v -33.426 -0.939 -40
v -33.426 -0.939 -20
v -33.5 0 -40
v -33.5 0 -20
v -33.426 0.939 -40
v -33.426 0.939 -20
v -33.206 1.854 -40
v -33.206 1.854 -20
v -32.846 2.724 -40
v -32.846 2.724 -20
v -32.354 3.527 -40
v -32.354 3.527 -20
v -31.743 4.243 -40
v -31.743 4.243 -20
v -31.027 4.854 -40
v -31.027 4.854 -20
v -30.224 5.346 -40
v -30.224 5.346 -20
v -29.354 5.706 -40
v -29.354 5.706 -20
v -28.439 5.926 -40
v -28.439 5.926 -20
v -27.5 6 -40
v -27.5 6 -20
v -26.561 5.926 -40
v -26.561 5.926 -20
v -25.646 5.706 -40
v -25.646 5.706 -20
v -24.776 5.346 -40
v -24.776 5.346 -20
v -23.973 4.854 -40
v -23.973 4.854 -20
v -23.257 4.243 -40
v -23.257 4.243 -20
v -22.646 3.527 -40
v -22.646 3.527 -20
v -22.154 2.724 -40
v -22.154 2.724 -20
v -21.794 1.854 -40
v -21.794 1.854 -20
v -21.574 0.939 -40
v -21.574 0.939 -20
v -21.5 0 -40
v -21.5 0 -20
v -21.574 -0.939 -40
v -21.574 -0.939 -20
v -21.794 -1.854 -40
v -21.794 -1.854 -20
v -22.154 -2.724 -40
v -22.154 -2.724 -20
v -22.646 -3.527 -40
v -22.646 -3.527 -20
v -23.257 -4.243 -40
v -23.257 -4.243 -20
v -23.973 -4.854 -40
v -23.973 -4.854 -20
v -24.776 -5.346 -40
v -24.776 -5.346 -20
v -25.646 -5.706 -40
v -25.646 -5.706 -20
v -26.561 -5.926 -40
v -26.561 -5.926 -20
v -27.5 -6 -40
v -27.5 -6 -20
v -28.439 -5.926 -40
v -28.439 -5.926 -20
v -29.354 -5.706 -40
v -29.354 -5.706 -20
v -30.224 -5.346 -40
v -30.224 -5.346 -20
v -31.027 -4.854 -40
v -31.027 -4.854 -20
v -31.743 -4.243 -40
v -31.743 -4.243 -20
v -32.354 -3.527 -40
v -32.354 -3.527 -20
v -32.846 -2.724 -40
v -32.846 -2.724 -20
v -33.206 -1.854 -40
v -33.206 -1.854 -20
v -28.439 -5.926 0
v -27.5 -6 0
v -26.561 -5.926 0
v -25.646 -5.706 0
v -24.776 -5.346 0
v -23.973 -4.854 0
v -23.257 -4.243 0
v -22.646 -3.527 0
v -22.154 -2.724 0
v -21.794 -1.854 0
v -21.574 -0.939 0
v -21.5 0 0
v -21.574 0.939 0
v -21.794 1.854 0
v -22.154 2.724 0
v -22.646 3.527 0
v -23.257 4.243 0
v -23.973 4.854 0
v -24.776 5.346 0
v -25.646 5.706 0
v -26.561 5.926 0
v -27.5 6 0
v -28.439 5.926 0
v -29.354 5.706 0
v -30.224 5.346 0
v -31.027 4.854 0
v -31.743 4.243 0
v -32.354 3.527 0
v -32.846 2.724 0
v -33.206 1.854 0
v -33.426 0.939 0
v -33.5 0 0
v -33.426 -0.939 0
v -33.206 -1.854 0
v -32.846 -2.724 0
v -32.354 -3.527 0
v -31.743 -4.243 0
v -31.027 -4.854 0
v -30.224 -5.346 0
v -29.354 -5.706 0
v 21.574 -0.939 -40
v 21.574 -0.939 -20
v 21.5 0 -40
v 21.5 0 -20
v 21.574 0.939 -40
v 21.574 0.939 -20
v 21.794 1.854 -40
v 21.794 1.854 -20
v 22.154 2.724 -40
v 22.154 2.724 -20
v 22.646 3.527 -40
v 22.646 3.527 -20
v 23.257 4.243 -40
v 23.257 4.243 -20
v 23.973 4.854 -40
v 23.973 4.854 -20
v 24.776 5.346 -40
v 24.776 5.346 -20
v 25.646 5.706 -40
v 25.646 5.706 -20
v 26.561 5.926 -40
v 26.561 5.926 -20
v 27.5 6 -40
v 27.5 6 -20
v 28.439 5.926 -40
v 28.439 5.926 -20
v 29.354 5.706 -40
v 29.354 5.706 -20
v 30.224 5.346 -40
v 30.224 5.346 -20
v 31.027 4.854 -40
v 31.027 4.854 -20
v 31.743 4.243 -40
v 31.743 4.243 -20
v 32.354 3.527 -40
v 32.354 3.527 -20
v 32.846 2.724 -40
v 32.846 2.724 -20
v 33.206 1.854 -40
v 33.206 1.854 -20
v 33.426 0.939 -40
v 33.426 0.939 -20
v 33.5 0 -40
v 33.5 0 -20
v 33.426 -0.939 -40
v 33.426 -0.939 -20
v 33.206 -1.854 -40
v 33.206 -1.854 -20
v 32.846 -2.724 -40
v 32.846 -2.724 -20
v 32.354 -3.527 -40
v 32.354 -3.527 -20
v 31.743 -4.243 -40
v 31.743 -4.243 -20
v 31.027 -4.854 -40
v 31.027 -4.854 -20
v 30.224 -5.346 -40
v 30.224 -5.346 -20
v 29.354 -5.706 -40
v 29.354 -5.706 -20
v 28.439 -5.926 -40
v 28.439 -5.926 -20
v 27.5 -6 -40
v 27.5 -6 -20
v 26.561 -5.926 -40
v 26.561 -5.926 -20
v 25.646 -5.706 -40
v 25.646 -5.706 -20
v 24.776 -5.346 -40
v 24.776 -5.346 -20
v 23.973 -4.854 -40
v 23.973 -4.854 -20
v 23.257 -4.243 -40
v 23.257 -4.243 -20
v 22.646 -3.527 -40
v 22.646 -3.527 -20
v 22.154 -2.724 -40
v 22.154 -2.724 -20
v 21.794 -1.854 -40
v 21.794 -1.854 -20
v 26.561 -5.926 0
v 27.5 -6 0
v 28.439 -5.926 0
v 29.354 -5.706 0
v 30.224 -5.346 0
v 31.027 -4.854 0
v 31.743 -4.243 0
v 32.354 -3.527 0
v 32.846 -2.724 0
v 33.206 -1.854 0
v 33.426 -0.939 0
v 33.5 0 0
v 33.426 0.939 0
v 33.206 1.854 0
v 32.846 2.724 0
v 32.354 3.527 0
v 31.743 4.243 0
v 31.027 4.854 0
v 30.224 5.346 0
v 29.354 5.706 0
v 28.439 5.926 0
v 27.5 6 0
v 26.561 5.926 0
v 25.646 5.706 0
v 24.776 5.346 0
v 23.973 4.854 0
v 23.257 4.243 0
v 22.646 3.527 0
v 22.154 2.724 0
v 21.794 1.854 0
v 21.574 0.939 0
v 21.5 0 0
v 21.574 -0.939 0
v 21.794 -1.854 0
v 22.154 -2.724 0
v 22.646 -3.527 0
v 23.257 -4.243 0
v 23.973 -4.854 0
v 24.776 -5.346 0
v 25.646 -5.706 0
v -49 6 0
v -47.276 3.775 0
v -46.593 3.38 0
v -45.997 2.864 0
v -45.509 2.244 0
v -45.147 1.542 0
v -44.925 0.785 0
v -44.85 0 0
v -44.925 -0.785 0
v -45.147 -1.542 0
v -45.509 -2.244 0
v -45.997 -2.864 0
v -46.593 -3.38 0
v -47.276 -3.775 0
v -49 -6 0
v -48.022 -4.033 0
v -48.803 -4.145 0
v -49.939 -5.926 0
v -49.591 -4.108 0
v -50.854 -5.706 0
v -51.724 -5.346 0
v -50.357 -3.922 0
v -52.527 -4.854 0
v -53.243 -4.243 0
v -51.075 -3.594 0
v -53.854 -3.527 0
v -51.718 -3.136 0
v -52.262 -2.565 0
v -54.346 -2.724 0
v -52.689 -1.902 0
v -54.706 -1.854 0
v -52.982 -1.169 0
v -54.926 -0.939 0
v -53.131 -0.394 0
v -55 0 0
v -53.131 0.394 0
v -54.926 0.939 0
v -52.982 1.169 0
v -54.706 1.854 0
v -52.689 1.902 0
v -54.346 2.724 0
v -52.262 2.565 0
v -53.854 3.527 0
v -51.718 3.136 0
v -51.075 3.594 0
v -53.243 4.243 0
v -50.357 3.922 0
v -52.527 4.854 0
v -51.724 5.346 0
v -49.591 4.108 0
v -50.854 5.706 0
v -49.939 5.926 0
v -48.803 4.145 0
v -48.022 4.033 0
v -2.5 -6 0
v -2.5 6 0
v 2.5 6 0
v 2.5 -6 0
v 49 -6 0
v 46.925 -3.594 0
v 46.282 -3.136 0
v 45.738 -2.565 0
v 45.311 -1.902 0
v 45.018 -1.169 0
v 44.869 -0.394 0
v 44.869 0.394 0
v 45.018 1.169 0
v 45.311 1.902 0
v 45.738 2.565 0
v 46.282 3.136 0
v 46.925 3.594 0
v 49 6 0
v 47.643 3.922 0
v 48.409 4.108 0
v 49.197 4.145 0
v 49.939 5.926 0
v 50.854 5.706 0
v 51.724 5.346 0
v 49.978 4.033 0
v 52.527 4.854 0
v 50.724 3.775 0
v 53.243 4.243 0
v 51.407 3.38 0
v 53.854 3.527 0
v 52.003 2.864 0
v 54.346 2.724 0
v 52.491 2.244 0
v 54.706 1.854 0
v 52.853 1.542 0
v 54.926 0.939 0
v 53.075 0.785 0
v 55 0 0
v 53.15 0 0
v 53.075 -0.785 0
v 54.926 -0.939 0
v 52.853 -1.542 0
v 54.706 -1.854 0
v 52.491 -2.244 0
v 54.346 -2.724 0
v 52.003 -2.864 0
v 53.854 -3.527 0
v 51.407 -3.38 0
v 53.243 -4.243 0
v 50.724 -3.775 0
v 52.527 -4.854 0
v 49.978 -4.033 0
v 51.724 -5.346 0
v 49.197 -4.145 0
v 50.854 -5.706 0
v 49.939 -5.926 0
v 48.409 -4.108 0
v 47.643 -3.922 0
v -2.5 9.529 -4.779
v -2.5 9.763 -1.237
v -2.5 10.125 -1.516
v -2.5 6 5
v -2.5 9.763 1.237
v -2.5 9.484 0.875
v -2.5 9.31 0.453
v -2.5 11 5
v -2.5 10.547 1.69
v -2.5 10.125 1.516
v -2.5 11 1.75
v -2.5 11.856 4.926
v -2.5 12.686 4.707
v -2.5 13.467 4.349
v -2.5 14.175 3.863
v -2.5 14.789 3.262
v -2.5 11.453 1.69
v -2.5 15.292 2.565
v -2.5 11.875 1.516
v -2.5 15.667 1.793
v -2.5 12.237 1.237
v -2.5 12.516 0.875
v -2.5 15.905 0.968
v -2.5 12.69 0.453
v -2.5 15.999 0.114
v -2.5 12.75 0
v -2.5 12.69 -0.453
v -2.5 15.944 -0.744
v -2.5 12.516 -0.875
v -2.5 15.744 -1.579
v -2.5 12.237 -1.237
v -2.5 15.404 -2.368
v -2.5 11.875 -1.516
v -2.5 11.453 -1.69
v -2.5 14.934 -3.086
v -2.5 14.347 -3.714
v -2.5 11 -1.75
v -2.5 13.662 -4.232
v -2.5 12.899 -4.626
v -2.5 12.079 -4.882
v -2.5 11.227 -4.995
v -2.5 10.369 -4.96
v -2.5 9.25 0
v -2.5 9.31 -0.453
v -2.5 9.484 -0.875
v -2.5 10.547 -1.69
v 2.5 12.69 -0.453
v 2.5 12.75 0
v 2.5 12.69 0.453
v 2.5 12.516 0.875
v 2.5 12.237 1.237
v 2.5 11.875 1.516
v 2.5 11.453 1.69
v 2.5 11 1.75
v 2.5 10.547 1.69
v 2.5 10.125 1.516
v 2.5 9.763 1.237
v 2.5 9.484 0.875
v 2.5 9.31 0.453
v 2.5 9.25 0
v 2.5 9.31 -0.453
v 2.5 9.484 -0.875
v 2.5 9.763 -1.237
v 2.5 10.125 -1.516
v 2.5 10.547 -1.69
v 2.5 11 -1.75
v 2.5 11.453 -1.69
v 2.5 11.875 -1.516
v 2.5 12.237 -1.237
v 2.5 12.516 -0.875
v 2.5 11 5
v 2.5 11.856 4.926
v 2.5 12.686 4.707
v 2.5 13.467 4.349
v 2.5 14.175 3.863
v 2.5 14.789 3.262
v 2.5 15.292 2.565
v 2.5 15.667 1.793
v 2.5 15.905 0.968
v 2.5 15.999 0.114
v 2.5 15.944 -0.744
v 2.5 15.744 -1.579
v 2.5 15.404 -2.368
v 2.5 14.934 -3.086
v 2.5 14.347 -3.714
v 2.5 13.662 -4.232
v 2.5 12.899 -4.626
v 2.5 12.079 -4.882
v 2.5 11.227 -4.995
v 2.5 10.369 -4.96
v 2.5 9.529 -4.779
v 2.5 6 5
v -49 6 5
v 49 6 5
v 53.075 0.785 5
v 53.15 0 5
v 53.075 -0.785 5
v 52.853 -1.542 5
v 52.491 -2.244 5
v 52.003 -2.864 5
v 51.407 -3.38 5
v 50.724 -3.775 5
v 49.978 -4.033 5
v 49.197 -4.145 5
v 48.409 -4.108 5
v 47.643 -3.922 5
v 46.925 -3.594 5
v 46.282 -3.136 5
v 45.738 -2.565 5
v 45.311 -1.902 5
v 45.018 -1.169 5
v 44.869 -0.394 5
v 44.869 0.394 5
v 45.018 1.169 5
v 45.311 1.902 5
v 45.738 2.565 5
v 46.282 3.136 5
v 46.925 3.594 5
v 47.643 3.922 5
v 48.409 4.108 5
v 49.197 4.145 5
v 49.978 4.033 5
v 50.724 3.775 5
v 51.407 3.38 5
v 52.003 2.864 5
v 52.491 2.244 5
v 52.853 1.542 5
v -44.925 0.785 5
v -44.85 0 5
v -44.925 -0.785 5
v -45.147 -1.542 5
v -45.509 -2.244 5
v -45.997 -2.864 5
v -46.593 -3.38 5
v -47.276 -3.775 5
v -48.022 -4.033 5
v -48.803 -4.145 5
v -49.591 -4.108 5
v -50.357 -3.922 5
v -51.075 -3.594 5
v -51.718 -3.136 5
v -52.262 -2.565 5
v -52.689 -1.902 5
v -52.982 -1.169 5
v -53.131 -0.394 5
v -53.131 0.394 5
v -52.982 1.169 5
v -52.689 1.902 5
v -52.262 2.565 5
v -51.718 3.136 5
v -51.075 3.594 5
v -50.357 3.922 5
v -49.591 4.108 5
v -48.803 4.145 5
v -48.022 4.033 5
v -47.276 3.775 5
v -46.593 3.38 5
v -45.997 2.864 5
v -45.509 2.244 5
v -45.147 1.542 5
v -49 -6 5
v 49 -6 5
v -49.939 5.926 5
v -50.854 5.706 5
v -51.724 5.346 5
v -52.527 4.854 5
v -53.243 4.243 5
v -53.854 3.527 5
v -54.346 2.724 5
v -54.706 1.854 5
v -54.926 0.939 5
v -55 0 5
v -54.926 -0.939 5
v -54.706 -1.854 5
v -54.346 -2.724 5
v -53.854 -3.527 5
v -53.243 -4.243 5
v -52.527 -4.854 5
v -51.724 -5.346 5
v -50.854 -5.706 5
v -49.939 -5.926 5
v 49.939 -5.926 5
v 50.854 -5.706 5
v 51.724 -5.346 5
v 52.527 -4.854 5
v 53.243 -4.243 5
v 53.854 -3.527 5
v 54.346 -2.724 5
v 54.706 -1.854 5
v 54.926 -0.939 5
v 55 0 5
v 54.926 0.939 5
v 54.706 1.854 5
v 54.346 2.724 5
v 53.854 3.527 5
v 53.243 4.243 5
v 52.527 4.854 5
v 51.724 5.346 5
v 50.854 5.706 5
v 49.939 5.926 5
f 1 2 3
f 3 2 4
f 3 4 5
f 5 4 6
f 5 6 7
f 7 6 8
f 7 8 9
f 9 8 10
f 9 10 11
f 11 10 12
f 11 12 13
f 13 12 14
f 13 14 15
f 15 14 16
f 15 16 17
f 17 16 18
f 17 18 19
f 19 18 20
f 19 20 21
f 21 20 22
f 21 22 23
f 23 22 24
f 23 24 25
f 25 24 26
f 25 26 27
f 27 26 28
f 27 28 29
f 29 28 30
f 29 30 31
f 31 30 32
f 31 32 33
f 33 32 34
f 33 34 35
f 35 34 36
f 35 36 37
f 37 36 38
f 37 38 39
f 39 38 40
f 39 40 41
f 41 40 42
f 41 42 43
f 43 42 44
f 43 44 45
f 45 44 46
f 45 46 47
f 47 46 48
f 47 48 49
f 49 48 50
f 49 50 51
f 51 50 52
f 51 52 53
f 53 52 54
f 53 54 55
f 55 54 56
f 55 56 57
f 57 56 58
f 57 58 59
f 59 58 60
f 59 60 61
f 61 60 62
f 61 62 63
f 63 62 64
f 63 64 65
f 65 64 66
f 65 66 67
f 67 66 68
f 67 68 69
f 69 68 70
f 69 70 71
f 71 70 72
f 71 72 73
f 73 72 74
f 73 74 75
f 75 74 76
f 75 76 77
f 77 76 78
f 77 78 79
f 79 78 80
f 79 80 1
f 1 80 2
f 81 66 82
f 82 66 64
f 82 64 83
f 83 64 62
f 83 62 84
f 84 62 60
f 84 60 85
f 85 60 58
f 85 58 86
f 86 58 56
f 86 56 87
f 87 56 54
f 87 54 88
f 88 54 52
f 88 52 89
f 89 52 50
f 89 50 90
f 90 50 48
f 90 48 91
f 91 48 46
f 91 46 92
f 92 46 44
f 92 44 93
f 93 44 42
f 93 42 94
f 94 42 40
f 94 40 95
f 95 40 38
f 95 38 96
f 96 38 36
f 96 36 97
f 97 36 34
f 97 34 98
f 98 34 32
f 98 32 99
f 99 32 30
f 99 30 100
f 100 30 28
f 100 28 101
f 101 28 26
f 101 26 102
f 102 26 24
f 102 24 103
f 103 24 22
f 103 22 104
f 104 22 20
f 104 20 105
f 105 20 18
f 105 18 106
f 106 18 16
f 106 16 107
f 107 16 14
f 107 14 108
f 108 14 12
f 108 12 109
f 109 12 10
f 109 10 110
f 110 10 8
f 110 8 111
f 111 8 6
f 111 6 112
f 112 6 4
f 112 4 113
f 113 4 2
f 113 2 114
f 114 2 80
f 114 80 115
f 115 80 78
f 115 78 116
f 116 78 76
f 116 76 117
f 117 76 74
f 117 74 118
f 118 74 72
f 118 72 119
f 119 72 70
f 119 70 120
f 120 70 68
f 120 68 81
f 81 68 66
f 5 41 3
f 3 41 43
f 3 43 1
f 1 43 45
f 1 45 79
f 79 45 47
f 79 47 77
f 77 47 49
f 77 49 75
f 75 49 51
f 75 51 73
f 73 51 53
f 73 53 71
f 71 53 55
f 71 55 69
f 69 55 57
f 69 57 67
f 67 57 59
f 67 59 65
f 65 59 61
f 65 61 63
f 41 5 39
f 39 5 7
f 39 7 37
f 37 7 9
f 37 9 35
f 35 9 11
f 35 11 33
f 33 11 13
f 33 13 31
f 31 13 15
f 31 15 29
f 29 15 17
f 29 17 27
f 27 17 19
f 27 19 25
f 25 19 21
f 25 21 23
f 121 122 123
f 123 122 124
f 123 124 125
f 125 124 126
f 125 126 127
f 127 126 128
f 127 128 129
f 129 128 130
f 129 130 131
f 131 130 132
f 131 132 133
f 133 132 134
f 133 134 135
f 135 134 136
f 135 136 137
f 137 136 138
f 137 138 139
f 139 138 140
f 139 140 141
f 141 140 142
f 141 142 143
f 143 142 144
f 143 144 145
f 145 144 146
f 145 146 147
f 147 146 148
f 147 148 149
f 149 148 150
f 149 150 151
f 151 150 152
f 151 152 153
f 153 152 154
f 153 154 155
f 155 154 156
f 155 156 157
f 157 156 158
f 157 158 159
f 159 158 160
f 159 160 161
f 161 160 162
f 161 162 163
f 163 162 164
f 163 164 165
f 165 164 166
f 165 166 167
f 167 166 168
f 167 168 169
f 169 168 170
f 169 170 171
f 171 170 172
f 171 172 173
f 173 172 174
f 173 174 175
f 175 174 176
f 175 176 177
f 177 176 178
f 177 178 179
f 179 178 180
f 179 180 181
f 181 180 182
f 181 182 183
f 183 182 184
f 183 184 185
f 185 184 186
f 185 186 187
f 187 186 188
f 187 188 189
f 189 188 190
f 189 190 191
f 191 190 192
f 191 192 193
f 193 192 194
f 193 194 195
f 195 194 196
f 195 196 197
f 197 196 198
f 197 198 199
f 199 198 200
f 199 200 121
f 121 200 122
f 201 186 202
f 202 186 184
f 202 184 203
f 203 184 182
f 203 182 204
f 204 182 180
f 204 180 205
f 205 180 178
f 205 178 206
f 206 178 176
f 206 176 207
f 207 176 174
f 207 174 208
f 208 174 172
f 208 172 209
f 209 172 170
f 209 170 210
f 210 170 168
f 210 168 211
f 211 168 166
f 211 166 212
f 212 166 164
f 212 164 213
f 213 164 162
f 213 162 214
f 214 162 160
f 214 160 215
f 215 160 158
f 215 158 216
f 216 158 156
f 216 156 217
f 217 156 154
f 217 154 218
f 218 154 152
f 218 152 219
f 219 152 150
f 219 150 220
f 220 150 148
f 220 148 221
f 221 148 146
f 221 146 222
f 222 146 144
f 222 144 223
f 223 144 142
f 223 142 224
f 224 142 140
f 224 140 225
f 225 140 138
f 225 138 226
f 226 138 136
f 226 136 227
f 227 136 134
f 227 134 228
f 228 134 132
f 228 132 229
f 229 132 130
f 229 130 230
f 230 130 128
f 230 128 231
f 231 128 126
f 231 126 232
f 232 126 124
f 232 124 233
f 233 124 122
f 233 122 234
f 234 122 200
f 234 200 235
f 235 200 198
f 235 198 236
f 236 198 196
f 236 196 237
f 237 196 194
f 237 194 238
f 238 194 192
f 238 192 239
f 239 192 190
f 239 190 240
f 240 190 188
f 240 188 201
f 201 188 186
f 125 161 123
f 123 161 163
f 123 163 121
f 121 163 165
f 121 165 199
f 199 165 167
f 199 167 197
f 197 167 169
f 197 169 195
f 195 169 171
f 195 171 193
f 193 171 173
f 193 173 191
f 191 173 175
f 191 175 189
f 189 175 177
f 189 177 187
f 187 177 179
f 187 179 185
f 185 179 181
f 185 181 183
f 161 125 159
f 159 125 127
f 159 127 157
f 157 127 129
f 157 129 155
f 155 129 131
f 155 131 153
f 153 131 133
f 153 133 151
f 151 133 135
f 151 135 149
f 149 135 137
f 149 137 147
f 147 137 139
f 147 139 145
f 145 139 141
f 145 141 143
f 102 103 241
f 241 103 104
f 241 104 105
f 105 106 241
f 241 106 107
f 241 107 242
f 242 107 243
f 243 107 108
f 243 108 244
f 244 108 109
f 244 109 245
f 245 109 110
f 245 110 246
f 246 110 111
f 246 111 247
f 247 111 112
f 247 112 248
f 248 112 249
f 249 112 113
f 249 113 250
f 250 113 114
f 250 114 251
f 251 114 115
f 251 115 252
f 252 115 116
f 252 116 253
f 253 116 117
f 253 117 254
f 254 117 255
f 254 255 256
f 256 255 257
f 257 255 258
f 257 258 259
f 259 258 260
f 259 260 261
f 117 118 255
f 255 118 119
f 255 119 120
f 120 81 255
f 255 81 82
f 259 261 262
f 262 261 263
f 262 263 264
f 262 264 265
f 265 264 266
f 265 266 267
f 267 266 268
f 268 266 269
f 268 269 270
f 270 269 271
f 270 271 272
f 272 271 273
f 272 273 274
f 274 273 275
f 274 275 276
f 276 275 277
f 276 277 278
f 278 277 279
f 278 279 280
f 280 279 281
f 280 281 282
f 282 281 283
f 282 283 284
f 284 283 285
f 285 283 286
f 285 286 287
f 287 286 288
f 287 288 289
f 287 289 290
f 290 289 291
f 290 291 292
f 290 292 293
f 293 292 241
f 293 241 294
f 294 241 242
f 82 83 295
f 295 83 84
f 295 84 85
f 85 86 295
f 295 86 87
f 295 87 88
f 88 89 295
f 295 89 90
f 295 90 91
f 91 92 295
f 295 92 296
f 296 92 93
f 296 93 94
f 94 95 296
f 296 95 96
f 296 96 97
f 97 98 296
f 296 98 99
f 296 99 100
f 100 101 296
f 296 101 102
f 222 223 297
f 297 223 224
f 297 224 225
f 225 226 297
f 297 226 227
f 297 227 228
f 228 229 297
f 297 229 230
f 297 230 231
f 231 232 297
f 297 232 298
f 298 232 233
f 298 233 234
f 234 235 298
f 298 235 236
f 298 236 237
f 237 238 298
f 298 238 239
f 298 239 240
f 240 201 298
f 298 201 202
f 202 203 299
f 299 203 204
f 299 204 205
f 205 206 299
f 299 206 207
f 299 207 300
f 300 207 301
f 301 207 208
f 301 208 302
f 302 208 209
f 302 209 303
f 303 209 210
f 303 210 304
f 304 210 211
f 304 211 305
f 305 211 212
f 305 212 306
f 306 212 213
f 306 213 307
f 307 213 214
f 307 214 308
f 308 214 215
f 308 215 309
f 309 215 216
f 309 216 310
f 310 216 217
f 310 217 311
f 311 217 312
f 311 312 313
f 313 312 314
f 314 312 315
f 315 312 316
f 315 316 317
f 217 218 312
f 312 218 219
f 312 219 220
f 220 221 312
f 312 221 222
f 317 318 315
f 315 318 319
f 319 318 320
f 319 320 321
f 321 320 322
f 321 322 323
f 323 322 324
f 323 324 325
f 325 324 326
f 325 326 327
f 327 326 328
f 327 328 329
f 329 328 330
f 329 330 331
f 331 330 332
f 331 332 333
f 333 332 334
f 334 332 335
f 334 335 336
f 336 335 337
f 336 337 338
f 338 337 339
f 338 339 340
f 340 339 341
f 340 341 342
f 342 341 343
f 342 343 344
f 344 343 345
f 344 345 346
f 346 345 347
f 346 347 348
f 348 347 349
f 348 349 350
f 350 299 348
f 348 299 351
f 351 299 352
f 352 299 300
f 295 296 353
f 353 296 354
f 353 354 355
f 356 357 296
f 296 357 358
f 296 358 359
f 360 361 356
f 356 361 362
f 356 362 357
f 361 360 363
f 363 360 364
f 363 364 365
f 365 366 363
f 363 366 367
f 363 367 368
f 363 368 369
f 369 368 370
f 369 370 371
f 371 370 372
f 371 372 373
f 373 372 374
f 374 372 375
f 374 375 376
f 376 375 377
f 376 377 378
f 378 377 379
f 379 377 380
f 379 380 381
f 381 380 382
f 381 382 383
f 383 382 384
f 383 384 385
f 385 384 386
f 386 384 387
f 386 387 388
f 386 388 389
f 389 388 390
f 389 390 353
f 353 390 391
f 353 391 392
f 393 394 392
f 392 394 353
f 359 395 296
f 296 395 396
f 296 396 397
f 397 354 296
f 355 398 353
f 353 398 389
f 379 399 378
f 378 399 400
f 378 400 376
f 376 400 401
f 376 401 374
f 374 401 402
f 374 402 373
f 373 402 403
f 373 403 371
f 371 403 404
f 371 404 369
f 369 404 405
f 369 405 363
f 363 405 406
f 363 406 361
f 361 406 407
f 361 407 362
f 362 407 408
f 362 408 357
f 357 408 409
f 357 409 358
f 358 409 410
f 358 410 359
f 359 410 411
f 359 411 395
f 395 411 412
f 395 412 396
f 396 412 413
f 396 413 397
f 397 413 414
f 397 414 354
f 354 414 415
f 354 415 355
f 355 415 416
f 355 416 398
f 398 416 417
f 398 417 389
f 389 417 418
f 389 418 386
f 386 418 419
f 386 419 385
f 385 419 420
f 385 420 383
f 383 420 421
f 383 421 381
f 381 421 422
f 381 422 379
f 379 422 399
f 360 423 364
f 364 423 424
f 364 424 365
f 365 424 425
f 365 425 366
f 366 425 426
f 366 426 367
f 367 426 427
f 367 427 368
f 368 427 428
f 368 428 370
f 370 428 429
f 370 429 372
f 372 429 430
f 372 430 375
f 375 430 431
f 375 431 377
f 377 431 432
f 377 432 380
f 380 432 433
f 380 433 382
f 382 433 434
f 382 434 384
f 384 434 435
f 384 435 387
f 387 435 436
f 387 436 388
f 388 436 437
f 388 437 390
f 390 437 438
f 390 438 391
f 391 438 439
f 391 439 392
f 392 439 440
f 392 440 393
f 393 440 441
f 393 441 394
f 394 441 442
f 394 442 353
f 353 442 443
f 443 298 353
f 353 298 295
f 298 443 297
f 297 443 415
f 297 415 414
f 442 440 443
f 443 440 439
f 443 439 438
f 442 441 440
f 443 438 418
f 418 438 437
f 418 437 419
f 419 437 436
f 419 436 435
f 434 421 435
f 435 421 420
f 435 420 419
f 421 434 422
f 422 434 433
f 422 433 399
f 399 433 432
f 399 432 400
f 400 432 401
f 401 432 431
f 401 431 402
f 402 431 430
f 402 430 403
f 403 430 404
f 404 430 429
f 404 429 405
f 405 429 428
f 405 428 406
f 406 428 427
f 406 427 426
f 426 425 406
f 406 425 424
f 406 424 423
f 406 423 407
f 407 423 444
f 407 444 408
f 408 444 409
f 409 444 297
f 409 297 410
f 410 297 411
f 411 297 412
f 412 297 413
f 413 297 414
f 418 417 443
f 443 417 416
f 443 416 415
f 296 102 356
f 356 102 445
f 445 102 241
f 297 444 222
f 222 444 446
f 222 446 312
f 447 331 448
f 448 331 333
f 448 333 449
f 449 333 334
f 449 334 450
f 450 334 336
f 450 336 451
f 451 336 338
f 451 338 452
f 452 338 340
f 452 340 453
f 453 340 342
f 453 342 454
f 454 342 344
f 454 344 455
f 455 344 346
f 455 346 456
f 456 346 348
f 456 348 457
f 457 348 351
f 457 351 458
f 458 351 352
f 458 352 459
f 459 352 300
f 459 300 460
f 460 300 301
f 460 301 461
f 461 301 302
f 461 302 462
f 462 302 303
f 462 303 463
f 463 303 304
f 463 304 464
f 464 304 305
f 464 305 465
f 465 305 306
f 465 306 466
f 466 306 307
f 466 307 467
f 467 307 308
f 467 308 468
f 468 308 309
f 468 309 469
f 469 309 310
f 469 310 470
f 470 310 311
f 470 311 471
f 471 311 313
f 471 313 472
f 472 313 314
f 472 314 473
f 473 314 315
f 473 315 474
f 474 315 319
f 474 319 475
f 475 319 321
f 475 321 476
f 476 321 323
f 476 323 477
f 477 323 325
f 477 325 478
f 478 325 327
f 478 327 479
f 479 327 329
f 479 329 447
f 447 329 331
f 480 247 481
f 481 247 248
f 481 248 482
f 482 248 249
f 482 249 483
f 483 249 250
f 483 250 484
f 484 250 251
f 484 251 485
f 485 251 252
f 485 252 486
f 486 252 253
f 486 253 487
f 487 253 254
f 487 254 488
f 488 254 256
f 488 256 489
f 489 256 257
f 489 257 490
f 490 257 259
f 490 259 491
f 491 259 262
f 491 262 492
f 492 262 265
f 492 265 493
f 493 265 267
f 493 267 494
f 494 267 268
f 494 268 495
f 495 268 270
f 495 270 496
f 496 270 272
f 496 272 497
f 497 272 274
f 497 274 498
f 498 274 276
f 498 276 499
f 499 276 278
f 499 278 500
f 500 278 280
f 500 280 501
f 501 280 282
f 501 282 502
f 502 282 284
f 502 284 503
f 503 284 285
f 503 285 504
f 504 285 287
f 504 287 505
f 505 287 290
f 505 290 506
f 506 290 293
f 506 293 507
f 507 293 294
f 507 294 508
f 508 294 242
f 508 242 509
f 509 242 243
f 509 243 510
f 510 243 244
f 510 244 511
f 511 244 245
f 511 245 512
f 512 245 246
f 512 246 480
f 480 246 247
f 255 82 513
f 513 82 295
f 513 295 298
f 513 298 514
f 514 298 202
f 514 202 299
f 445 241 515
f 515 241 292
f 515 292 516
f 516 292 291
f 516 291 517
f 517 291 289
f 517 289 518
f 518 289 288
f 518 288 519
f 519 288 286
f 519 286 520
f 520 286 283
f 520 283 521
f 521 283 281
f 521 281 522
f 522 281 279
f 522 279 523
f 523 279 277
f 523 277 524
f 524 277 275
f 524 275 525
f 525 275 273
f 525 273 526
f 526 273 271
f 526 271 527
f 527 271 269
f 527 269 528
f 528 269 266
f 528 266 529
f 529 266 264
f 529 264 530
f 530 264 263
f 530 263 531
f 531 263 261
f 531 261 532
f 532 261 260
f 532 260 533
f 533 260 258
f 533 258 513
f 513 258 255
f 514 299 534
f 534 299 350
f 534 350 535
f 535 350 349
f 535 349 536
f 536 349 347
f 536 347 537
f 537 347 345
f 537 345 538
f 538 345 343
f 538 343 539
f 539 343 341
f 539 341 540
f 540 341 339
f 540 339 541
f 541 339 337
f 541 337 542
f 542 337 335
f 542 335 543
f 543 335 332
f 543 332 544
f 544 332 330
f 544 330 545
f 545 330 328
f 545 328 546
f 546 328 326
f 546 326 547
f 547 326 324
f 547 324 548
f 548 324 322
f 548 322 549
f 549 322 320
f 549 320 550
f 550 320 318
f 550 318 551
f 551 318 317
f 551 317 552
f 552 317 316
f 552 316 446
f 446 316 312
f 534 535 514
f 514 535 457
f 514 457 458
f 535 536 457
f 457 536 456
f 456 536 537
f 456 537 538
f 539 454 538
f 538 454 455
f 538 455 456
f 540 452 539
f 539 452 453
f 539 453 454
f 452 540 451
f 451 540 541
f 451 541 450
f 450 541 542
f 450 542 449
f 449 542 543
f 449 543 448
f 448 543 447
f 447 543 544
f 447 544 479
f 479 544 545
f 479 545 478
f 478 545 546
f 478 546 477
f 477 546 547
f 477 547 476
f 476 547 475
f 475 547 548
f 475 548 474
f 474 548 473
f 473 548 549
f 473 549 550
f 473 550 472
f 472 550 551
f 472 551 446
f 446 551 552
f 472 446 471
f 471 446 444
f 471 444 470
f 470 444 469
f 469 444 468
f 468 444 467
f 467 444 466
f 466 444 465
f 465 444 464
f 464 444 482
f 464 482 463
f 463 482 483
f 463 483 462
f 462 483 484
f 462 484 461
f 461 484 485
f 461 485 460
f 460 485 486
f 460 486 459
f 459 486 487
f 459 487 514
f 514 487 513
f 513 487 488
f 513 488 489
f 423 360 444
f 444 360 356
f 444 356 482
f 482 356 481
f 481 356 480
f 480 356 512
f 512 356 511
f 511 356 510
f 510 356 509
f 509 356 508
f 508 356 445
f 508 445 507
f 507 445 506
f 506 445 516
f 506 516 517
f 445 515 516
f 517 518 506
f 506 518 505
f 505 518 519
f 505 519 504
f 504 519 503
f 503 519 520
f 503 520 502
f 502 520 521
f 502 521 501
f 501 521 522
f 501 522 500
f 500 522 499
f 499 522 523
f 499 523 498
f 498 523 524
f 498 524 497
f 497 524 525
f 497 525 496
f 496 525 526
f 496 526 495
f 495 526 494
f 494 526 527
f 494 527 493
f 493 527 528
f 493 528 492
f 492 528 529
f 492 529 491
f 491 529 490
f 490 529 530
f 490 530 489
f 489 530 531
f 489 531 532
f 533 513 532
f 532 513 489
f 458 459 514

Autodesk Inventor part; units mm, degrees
ref_plane "YZ Plane" through (0, 0, 0) normal (1, 0, 0) x (0, 1, 0)
ref_plane "XZ Plane" through (0, 0, 0) normal (0, 1, 0) x (-1, 0, 0)
ref_plane "XY Plane" through (0, 0, 0) normal (0, 0, 1) x (1, 0, 0)
sketch "Sketch1" plane through (0, 0, 0) normal (0, 0, 1) x (1, 0, 0)
  line L0 (-49, 0) -> (49, 0) construction
  line L1 (-49, -6) -> (49, -6)
  line L2 (49, 6) -> (-49, 6)
  arc A0 (-49, 6) -> (-49, -6) centre (-49, 0) ccw
  arc A1 (49, -6) -> (49, 6) centre (49, 0) ccw
  circle A2 centre (49, 0) radius 4.15
  circle A3 centre (-49, 0) radius 4.15
  point P0 (0, 0)
  dimension "d0" = 49
  dimension "d1" = 12
  dimension "d2" = 8.3
  dimension "d3" = 8.3
extrude "Extrusion1" add sketch "Sketch1" along normal blind 5
sketch "Sketch2" plane through (0, 0, 0) normal (1, 0, 0) x (0, 1, 0)
  circle A0 centre (11, 0) radius 1.75
  circle A1 centre (11, 0) radius 5
  line L0 (6, 5) -> (-6, 5) projected
  line L1 (6, 5) -> (11, 5)
  line L2 (9.5294, -4.7788) -> (-6, 0)
  line L3 (-6, 0) -> (6, 0) projected
  line L4 (6, 0) -> (6, 5) projected
  line L5 (-6, 5) -> (6, 5) projected
  line L6 (-6, 0) -> (-6, 5) projected
  line L7 (6, 0) -> (6, 5) projected
  point P0 (0, 0)
  point P1 (-6, 0)
  dimension "d6" = 3.5
  dimension "d7" = 10
extrude "Extrusion2" add sketch "Sketch2" along normal mid plane 5 contours A1 | A1 L4 L1 | L2 L3 A1
sketch "Sketch3" plane through (0, 0, 0) normal (0, 0, -1) x (-1, 0, 0)
  circle A0 centre (-27.5, 0) radius 6
  line L0 (-49, 6) -> (-2.5, 6) projected
  line L1 (2.5, -6) -> (-2.5, -6) projected
  line L2 (0, -6) -> (0, -9.8516)
  line L3 (-2.5, -6) -> (-49, -6) projected
  line L4 (-2.5, -6) -> (-2.5, 9.5294) projected
  circle A1 centre (27.5, 0) radius 6
  point P0 (0, 0)
  dimension "d10" = 25
extrude "Extrusion3" add sketch "Sketch3" along normal blind 40 contours A0 | A1
properties part number "Support slider_3DPrint"
